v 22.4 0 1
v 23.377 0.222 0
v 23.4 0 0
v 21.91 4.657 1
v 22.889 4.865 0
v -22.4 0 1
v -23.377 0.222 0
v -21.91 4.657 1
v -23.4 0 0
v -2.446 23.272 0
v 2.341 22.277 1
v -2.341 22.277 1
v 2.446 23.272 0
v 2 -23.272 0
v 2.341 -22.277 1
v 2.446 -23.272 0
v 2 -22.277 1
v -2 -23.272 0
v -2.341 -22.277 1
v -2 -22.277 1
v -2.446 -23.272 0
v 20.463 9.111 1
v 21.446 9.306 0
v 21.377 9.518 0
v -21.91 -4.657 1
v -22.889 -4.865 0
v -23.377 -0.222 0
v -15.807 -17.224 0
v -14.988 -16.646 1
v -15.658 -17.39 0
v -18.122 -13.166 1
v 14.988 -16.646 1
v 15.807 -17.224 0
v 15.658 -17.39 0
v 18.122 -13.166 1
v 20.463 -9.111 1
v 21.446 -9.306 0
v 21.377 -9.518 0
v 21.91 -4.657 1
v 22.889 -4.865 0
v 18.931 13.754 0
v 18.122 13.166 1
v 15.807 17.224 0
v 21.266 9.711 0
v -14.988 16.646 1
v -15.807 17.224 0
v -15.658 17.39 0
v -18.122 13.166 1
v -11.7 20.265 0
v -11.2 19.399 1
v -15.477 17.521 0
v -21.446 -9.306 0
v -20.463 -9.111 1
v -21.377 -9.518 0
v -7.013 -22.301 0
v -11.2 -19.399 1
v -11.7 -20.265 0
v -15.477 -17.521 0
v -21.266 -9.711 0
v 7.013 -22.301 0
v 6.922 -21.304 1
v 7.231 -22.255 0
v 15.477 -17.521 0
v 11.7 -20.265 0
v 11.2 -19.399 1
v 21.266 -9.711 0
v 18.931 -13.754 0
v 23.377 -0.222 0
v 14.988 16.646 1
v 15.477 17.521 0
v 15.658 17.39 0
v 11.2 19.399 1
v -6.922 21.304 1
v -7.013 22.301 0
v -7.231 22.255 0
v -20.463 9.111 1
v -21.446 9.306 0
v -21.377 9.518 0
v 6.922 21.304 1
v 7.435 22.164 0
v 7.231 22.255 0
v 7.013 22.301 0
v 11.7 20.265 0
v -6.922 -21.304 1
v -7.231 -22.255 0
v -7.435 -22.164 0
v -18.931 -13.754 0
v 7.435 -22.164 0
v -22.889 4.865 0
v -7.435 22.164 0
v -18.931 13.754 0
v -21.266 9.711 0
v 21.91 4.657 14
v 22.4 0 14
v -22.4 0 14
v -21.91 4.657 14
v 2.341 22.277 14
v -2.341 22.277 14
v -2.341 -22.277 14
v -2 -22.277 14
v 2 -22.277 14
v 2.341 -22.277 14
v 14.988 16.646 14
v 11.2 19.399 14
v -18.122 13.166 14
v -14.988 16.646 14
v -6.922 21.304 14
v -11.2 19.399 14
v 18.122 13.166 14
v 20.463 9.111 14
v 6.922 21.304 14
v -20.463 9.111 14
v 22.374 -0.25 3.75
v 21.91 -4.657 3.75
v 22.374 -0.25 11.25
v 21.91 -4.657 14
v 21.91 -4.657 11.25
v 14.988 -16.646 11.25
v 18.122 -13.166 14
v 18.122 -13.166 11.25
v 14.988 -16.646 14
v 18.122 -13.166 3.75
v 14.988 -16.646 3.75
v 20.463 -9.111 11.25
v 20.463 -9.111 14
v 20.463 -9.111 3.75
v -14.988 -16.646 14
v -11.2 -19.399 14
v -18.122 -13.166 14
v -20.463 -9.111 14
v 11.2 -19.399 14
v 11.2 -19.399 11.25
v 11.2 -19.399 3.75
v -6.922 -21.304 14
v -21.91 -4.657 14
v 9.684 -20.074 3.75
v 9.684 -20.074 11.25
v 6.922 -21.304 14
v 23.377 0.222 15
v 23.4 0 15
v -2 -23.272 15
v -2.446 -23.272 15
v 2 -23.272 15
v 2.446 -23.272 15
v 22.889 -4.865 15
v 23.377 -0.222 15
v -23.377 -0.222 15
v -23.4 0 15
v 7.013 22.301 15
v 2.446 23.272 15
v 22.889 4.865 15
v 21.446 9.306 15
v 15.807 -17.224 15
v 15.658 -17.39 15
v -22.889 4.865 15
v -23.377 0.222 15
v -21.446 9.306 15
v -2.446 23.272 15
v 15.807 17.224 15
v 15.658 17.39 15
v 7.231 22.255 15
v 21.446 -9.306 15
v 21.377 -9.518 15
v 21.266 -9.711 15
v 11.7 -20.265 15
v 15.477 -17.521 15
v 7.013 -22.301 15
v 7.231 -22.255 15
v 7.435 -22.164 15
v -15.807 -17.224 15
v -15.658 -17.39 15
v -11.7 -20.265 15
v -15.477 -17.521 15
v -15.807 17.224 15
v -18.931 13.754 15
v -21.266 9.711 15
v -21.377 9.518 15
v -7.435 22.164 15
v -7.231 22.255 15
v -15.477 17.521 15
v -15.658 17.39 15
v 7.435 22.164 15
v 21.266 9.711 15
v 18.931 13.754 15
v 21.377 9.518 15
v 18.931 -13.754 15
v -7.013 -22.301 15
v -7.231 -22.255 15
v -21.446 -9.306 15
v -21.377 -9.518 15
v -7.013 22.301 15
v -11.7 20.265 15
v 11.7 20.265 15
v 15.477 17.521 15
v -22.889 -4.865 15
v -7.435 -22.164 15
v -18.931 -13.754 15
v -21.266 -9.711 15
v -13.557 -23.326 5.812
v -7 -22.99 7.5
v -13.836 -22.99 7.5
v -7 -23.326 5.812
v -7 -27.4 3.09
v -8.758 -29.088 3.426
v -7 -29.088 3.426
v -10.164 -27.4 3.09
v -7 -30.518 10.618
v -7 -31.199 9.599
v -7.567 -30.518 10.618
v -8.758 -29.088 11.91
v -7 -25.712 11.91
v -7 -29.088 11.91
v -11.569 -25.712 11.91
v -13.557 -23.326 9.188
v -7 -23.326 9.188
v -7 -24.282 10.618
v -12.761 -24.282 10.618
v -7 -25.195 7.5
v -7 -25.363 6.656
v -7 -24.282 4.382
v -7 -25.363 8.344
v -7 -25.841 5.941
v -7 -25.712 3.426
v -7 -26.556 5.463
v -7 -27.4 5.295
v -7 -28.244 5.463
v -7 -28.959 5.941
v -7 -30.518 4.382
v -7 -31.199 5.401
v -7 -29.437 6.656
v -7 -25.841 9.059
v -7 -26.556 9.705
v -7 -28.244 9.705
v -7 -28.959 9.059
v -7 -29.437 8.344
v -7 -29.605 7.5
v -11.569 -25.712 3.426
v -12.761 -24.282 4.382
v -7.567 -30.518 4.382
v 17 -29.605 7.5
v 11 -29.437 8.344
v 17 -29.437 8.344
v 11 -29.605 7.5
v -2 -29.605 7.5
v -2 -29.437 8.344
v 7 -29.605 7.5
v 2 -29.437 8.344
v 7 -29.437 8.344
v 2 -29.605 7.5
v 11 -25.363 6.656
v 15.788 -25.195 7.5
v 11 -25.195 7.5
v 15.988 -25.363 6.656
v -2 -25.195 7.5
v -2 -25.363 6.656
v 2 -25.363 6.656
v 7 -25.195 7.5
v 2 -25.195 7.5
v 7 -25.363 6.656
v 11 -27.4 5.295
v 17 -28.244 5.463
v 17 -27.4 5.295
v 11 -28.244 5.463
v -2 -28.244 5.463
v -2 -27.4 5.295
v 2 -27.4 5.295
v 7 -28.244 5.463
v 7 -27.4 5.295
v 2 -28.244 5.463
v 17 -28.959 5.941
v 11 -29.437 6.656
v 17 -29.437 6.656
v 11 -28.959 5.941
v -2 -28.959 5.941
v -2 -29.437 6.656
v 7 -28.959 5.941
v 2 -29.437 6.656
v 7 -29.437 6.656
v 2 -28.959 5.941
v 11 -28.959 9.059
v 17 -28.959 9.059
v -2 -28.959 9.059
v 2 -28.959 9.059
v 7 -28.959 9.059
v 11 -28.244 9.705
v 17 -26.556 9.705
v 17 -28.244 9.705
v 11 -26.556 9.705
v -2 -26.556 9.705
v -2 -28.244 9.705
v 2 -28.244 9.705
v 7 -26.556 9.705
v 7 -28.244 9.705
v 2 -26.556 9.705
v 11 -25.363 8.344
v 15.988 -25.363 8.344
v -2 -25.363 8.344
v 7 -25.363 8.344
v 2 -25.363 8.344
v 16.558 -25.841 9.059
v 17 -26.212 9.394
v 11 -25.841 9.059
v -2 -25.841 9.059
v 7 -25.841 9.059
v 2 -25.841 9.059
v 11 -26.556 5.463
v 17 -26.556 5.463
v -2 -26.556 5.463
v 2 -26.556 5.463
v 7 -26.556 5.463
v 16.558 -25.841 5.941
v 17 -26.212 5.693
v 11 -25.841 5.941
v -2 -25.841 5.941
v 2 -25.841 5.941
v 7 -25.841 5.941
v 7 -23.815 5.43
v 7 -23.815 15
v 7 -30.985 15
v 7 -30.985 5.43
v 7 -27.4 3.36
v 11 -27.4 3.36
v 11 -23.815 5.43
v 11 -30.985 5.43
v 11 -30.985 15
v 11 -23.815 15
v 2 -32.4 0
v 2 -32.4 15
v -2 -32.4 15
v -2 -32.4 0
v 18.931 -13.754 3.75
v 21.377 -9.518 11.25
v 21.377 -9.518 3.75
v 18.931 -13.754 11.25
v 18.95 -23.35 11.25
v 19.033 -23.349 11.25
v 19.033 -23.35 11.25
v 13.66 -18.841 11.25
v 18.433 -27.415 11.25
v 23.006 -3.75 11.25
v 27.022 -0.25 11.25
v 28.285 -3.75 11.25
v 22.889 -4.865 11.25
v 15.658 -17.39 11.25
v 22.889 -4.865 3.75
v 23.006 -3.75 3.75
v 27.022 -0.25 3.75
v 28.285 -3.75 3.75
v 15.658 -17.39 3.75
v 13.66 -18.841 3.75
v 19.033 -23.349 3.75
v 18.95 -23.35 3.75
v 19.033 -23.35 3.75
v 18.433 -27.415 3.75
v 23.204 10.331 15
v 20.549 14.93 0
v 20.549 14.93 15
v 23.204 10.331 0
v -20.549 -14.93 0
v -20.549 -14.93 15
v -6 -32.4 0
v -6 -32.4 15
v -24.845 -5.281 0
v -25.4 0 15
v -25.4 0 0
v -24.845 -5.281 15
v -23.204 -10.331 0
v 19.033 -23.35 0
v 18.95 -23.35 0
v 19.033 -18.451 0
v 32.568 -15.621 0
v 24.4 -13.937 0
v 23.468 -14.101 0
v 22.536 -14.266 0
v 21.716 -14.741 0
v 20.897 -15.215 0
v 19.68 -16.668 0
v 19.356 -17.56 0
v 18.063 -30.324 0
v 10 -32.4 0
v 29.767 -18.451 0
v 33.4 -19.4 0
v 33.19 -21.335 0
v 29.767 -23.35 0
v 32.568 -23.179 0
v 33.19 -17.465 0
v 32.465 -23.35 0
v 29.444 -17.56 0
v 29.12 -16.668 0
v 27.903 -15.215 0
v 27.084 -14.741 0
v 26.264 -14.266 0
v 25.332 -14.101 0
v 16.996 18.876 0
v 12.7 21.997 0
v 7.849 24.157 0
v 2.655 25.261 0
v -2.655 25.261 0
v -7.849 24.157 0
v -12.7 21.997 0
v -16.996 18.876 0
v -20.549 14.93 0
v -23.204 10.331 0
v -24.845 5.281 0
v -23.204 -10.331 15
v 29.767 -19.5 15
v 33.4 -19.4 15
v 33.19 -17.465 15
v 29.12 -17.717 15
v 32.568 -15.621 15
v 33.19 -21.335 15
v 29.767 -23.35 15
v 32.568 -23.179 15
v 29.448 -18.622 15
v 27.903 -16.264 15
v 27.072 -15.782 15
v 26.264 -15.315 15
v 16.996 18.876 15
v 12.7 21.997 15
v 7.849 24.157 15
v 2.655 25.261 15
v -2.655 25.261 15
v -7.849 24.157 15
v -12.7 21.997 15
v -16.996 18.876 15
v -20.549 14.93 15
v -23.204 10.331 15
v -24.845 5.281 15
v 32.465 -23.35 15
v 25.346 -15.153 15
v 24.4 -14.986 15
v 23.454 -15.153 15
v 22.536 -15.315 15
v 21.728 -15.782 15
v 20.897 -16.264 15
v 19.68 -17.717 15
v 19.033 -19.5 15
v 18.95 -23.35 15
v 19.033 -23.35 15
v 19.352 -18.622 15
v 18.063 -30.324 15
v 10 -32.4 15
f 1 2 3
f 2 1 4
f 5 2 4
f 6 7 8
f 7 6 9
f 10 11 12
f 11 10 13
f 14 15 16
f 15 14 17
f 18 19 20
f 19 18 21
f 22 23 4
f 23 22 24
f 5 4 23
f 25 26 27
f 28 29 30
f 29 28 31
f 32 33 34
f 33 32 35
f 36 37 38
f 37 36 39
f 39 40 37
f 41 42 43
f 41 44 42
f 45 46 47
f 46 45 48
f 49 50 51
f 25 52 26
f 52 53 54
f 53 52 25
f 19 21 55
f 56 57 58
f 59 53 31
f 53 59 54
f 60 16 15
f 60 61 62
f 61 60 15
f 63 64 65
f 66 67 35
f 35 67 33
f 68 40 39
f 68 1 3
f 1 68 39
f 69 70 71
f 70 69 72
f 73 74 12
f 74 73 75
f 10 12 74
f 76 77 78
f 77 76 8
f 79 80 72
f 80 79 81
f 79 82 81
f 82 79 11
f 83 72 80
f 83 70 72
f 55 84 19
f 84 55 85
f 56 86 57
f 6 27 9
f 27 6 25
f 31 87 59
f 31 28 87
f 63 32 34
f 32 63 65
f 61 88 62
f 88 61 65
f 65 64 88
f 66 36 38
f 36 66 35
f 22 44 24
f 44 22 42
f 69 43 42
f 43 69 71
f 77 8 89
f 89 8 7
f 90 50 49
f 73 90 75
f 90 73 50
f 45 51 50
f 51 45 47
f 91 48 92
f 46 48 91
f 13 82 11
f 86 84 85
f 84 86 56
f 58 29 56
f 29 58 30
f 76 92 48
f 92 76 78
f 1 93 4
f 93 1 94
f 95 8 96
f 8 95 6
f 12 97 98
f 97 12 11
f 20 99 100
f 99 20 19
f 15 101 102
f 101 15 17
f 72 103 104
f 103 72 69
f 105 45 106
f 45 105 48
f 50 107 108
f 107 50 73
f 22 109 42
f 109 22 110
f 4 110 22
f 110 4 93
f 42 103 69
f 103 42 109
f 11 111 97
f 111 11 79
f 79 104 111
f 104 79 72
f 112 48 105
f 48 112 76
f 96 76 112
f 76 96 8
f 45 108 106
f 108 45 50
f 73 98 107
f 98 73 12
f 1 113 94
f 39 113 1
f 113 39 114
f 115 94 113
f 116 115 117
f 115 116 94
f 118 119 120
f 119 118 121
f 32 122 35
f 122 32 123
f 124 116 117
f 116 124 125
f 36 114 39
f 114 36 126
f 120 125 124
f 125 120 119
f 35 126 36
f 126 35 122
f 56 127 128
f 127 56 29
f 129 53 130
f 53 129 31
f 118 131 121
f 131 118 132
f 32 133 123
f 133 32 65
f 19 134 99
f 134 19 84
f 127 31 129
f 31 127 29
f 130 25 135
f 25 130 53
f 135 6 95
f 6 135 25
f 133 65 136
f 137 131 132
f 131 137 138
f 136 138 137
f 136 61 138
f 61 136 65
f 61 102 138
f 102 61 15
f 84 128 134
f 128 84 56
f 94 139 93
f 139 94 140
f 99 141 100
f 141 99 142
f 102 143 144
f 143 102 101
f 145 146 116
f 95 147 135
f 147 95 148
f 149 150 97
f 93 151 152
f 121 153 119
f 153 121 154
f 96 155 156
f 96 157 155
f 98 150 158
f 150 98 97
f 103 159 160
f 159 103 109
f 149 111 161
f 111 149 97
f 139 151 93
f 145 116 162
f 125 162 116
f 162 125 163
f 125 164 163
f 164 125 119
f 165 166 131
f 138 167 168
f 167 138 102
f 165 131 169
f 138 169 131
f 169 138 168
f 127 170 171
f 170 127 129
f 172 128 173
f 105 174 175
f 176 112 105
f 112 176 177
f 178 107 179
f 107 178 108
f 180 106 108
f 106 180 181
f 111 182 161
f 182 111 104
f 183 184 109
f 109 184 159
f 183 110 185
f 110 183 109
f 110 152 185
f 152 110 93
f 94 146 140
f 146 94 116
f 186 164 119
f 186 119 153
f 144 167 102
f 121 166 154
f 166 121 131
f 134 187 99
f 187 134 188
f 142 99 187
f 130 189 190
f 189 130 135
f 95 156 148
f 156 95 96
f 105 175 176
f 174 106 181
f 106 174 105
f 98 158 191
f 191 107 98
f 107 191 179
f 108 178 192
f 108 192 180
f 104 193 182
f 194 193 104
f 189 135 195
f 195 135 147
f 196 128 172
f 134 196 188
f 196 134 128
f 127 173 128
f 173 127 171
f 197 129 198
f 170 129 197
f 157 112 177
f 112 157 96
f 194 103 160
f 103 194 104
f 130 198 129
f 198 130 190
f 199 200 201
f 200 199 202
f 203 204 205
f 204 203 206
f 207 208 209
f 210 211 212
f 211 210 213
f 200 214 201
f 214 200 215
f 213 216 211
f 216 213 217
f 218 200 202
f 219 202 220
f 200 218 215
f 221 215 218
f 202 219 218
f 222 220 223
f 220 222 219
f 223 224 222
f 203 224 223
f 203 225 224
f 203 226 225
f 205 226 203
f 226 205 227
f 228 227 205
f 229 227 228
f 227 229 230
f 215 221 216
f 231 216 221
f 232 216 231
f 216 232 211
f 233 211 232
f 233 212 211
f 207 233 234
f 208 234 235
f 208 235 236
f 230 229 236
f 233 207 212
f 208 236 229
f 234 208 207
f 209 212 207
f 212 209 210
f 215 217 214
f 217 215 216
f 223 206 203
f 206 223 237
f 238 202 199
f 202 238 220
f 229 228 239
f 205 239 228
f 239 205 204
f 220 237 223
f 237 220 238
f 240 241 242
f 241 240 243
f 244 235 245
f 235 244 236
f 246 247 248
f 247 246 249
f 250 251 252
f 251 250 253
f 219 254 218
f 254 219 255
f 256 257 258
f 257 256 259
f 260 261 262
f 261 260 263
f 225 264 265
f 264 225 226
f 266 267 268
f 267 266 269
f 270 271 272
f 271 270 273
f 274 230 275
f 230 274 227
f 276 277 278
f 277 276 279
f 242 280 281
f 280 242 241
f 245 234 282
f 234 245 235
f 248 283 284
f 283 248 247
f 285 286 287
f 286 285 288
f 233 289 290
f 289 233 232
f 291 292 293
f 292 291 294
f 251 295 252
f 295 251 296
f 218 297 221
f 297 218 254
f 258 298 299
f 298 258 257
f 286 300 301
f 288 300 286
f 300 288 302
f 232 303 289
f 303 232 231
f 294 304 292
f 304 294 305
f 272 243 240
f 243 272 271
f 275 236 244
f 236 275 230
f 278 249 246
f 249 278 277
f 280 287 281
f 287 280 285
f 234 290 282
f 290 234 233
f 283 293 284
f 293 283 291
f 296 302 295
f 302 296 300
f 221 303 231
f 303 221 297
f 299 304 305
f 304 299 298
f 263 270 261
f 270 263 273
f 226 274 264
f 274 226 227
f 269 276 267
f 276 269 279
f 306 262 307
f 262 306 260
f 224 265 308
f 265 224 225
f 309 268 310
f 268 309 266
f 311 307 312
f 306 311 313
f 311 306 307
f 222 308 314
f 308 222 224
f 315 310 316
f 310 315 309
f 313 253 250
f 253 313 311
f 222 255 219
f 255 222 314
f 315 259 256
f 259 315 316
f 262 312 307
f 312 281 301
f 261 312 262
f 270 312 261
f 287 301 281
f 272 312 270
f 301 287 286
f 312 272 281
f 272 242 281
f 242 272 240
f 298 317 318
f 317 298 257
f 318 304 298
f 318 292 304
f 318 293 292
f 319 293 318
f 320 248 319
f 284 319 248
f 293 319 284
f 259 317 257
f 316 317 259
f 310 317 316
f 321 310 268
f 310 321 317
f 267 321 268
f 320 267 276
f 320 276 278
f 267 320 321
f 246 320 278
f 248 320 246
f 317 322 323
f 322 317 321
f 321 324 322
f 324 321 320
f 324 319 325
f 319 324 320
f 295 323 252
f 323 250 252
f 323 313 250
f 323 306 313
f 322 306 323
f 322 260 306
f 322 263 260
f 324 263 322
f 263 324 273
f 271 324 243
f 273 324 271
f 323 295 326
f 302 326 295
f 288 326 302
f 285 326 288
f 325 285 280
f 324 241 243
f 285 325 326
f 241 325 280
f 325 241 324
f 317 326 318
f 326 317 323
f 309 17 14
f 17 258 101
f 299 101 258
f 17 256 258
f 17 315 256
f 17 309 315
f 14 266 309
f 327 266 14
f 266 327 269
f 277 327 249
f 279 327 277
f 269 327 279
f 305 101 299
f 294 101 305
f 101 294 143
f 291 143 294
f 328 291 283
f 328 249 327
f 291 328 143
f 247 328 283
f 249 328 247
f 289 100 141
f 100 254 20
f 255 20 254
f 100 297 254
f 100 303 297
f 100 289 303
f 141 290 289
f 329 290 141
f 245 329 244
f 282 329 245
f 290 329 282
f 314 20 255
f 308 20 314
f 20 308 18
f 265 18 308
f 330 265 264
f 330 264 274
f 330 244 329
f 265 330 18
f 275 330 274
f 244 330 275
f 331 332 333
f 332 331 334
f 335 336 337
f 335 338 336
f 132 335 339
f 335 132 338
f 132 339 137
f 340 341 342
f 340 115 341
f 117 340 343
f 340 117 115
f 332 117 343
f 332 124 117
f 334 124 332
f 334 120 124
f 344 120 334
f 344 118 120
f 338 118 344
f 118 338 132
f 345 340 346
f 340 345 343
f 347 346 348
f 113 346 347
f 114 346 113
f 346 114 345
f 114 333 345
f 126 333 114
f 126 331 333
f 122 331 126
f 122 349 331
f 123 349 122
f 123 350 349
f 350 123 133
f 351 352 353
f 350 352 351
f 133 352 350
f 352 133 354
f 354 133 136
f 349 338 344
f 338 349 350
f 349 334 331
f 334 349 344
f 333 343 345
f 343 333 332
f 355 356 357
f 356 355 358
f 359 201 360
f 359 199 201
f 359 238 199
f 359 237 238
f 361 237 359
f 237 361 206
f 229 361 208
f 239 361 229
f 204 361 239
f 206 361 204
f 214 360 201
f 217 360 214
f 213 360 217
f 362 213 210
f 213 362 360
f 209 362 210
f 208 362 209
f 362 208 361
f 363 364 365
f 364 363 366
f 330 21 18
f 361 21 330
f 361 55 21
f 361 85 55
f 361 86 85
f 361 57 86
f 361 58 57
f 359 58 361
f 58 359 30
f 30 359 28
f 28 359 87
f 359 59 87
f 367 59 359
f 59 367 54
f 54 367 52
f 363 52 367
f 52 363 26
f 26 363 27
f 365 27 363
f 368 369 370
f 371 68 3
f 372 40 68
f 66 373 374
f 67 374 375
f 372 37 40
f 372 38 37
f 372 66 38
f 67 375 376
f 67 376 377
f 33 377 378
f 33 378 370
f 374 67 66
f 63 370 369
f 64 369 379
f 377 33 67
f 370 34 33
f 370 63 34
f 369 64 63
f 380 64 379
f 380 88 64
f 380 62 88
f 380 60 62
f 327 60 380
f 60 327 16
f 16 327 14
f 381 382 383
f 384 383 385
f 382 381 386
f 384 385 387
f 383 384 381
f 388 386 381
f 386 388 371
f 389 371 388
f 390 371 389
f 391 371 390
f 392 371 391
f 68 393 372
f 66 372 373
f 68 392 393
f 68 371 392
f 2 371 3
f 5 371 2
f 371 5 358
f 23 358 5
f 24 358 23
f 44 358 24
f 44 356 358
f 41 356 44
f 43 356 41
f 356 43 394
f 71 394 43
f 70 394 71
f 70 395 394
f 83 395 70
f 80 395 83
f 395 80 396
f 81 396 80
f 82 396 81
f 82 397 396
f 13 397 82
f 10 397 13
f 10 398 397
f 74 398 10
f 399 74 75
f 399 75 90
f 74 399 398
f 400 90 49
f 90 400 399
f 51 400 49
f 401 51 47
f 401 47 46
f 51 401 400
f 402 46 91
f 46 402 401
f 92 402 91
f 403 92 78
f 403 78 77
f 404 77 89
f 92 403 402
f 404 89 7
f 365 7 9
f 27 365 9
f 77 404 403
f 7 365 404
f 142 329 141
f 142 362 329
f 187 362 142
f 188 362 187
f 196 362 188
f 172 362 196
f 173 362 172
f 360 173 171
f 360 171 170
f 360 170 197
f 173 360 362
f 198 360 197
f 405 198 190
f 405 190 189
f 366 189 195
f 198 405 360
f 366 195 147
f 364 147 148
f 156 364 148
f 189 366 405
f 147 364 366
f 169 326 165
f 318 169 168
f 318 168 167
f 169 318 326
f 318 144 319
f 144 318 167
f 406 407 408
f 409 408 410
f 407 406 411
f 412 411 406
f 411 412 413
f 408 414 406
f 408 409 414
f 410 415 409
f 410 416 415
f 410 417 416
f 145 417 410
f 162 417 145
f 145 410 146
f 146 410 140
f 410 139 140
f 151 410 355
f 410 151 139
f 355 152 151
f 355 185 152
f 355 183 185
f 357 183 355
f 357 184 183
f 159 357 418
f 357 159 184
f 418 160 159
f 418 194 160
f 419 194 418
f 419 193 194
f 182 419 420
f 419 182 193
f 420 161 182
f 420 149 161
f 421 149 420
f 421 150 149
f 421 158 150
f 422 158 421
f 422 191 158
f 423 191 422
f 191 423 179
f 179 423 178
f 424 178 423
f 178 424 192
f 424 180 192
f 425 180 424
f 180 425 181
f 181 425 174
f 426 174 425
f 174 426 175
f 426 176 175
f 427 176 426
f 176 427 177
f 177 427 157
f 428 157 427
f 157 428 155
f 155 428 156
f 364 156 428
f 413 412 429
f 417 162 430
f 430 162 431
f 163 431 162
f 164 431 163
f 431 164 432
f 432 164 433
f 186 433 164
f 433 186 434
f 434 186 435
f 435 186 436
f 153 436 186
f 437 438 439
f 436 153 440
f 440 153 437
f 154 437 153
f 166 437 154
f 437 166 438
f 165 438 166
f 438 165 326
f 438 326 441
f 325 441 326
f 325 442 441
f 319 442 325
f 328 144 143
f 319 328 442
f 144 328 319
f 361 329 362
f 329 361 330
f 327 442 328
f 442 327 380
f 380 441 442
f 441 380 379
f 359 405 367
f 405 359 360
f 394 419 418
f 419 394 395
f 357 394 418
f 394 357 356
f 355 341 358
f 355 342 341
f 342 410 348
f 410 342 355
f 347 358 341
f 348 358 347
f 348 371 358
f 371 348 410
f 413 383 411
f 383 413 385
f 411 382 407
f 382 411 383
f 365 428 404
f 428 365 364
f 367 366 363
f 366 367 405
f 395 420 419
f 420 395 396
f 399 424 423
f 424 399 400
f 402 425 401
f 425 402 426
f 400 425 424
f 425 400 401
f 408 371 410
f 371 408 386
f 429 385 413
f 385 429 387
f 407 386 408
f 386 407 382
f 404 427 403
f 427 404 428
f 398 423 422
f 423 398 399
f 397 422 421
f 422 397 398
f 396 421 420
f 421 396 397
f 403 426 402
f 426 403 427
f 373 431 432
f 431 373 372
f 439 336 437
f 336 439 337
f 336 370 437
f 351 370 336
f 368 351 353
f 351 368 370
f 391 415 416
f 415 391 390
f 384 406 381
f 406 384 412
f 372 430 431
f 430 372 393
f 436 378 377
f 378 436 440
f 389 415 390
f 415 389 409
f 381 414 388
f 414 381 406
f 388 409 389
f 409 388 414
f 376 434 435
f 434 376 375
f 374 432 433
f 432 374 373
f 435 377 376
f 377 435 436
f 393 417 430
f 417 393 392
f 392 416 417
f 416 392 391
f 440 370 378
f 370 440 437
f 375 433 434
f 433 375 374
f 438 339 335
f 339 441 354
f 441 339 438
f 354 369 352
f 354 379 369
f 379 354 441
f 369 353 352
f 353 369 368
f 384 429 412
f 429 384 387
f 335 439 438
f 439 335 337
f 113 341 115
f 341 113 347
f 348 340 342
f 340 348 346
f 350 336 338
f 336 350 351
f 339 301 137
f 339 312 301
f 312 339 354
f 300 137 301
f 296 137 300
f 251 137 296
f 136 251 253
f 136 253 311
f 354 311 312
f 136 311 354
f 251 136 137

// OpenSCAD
use <utilities.scad>;

t = 3;
h = 15;
inner_r = 22+0.4;
rack_r = 10.5/2+0.2;

rack = [inner_r+2,-inner_r+3,0];

roc=2;
flex_t=2;
clip = [3,rack_r-4,h];
clip_l = 10;
pivot = rack + [-clip[0]-roc, -rack_r - clip_l, 0];

d=0.05;

module rack(){
	translate(rack) rotate([0,4,-90]) //rotate([0,2.5,-90])
				cylinder(r=rack_r,h=999*2,center=true);
}

union(){
	difference(){
        hull(){ //this bit holds the rack tube
            cylinder(r=inner_r+t,h=h); //body
            translate([2,-inner_r-5,h/2]) cube([16,10,h],center=true);
            translate(rack) cylinder(r=5+4,h=h); //hold rack
            //translate(pivot + [-roc,0,0]) cylinder(r=d,h=h); //for locking clip
        }

        chamfered_hole(r=inner_r,h=h); //hole for seat tube
        //Clamping bolt
		translate([0,-inner_r-5,h/2]) rotate(90) pinch_y(4,t=5, top_access=true,screw_l=12,extra_height=0); //clamping screw

		//clearance for rack
		hull() repeat([0,-999,0],2) rack();
        hull(){ //clearance for locking clip
            translate(pivot) cylinder(r=2,h=999,center=true);
            translate(rack+[-rack_r,-4,-1]) cube([999,d,999]);
        }
        
        //clearance for velcro strap round the inside
        intersection(){
            translate([0,0,h/2]) cylinder(r=inner_r+1,h=h/2,center=true);
            rotate(-90) translate([2,12,-1]) cube(999);
        }
        //entry/exit for velcro strap to inside of mount
        translate([inner_r,-2,h/2]) cube([inner_r,3.5,h/2],center=true);
        rotate(-40) translate([inner_r,-rack_r-sin(5)*inner_r,h/2]) cube([2*inner_r,3.5,h/2],center=true);
	}
    
}
